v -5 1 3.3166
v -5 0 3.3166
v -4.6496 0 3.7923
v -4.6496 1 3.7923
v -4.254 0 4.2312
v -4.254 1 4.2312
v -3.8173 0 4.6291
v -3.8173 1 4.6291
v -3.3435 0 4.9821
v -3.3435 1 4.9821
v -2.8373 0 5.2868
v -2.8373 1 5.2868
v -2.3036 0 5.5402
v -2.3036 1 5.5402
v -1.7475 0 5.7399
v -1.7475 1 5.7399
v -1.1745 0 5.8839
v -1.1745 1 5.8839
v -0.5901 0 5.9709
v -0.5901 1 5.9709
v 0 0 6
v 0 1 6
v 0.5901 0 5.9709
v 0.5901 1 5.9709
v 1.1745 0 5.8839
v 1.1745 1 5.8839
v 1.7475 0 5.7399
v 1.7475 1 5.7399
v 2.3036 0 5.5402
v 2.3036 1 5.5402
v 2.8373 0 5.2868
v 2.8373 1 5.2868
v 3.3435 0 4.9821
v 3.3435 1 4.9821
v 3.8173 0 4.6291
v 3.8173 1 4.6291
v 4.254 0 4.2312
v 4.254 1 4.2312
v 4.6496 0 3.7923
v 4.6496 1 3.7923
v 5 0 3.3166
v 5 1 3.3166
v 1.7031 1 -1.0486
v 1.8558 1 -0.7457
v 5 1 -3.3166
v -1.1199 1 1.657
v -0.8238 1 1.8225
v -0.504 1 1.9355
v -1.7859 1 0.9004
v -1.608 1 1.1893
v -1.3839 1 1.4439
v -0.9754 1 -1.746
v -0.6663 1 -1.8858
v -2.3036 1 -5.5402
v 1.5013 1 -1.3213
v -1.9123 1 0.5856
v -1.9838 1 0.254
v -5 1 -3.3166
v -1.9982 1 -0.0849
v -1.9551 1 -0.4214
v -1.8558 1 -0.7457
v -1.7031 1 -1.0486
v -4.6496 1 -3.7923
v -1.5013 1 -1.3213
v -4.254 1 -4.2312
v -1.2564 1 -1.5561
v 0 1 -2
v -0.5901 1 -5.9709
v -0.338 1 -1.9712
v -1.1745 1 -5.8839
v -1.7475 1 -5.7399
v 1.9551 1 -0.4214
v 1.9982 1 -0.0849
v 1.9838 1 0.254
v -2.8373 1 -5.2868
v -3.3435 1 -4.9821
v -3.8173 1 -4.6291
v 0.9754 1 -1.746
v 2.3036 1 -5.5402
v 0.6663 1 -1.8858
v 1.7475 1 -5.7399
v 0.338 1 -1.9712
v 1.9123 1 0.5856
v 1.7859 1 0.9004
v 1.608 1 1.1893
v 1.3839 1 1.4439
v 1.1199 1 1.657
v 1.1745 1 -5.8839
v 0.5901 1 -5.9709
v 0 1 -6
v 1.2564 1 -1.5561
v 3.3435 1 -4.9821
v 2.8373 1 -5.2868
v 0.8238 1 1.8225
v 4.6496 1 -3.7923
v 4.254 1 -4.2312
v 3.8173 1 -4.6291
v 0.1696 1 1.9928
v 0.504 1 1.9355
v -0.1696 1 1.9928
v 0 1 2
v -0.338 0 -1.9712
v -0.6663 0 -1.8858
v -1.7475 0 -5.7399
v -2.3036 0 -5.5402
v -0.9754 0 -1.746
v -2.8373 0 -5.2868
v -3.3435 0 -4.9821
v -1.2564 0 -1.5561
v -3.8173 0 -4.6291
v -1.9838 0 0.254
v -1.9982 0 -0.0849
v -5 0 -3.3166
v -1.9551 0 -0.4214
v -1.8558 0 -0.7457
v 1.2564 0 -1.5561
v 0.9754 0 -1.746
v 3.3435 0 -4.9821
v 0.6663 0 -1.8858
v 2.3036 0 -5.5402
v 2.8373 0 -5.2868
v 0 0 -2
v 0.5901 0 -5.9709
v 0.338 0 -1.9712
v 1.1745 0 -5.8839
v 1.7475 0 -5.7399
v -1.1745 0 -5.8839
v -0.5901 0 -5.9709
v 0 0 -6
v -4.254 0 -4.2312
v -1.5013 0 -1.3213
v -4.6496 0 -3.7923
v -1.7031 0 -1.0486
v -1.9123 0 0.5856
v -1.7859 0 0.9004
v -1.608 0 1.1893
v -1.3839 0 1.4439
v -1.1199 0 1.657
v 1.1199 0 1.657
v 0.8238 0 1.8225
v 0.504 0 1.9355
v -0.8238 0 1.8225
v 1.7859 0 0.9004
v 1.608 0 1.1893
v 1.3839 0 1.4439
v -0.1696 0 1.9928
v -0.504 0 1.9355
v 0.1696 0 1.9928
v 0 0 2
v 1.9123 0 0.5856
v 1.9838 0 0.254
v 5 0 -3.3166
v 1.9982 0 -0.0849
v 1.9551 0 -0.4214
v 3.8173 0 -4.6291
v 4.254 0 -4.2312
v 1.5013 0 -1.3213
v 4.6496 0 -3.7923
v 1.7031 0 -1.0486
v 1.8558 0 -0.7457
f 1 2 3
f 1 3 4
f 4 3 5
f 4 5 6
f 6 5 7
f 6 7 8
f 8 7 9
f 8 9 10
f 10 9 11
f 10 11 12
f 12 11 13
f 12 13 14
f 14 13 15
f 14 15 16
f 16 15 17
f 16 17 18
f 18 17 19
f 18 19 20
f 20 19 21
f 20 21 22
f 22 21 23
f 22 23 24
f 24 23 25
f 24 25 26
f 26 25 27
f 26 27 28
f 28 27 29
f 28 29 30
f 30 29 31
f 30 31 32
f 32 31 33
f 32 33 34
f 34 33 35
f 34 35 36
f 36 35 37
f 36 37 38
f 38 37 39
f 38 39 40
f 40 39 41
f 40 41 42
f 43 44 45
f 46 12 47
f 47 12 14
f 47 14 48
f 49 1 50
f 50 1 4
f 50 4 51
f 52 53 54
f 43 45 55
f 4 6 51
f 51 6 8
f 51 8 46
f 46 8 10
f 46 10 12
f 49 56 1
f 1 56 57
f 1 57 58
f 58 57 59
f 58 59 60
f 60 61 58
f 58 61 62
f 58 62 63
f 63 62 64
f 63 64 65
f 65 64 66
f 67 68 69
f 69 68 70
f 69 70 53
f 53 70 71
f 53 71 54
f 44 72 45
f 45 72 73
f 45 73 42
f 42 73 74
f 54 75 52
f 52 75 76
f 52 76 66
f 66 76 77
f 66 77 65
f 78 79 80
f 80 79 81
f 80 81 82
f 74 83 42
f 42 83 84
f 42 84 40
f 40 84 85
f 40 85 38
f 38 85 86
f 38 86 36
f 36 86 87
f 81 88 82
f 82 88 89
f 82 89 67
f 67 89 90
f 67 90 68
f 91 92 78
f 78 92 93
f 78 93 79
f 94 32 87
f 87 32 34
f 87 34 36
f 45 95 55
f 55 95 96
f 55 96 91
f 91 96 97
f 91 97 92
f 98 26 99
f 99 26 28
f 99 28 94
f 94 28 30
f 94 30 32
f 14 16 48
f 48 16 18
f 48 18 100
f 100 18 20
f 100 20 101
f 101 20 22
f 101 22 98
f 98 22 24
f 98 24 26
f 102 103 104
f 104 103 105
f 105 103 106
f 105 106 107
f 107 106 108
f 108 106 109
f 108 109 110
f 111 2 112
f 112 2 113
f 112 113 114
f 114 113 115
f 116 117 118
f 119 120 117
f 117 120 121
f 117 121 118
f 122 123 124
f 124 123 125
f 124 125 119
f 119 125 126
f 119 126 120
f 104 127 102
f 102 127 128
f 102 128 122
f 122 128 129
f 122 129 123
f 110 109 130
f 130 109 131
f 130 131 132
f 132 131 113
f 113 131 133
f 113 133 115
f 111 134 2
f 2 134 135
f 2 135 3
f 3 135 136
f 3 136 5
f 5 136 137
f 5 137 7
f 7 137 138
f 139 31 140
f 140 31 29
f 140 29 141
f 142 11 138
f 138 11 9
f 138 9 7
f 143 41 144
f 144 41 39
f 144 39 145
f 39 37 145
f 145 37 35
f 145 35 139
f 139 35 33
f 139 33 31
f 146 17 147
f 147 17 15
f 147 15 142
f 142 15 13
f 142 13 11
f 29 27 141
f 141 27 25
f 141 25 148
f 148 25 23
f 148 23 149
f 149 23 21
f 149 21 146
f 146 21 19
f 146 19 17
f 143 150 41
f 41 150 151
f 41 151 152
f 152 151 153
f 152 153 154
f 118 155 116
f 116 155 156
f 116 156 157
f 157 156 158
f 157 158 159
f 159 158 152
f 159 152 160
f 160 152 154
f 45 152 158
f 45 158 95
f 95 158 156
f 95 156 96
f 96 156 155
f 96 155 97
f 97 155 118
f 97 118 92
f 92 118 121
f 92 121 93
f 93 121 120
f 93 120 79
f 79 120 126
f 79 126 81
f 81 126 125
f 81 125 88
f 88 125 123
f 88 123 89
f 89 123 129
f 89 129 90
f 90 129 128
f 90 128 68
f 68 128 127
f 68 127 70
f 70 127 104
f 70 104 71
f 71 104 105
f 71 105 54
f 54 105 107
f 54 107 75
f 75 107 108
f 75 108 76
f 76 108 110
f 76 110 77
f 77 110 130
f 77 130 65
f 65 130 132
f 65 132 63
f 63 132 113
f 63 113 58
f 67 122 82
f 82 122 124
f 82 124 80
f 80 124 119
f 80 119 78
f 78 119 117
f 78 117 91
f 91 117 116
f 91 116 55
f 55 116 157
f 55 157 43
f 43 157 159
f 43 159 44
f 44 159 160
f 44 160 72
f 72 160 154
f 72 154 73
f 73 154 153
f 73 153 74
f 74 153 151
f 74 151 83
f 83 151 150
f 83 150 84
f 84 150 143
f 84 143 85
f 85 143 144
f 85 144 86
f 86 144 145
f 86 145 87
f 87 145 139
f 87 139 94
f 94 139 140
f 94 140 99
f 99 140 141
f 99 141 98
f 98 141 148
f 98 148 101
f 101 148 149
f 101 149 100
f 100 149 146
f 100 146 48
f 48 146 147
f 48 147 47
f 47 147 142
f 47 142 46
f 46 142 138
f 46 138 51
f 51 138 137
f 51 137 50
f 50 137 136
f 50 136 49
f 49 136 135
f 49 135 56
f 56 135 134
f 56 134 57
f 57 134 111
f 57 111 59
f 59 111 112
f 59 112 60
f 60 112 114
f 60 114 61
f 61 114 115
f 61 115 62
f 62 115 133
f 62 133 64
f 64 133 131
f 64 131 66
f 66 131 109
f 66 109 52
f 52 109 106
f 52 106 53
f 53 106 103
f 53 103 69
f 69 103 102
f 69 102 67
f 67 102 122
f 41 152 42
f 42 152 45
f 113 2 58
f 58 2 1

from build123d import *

# Parameters (mm, degrees)
SKETCH1_R           = 6
SKETCH1_R_2         = 2
BOSS_EXTRUDE1_DEPTH = 1
CUT_EXTRUDE1_DEPTH  = 9.544003745


with BuildPart() as part:
    # Sketch1 → Boss-Extrude1 (new body)
    with BuildSketch(Plane(origin=(0, 0, 0), x_dir=(1, 0, 0), z_dir=(0, 1, 0))):
        with Locations(Location((0, 0, 0), (0, 0, 270))):
            Circle(SKETCH1_R)
        with Locations(Location((0, 0, 0), (0, 0, 270))):
            Circle(SKETCH1_R_2, mode=Mode.SUBTRACT)
    extrude(amount=BOSS_EXTRUDE1_DEPTH)

    # Sketch2 → Cut-Extrude1 (cut, through all)
    with BuildSketch(Plane(origin=(0, 1, 0), x_dir=(1, 0, 0), z_dir=(0, 1, 0))):
        with BuildLine():
            Line((-5, -3.31662479), (-5, 3.31662479))
            ThreePointArc((-5, 3.31662479), (-6, 0), (-5, -3.31662479))
        make_face()
        with BuildLine():
            Line((5, 3.31662479), (5, -3.31662479))
            ThreePointArc((5, -3.31662479), (6, 0), (5, 3.31662479))
        make_face()
    extrude(amount=-CUT_EXTRUDE1_DEPTH, mode=Mode.SUBTRACT)


solid = part.part
